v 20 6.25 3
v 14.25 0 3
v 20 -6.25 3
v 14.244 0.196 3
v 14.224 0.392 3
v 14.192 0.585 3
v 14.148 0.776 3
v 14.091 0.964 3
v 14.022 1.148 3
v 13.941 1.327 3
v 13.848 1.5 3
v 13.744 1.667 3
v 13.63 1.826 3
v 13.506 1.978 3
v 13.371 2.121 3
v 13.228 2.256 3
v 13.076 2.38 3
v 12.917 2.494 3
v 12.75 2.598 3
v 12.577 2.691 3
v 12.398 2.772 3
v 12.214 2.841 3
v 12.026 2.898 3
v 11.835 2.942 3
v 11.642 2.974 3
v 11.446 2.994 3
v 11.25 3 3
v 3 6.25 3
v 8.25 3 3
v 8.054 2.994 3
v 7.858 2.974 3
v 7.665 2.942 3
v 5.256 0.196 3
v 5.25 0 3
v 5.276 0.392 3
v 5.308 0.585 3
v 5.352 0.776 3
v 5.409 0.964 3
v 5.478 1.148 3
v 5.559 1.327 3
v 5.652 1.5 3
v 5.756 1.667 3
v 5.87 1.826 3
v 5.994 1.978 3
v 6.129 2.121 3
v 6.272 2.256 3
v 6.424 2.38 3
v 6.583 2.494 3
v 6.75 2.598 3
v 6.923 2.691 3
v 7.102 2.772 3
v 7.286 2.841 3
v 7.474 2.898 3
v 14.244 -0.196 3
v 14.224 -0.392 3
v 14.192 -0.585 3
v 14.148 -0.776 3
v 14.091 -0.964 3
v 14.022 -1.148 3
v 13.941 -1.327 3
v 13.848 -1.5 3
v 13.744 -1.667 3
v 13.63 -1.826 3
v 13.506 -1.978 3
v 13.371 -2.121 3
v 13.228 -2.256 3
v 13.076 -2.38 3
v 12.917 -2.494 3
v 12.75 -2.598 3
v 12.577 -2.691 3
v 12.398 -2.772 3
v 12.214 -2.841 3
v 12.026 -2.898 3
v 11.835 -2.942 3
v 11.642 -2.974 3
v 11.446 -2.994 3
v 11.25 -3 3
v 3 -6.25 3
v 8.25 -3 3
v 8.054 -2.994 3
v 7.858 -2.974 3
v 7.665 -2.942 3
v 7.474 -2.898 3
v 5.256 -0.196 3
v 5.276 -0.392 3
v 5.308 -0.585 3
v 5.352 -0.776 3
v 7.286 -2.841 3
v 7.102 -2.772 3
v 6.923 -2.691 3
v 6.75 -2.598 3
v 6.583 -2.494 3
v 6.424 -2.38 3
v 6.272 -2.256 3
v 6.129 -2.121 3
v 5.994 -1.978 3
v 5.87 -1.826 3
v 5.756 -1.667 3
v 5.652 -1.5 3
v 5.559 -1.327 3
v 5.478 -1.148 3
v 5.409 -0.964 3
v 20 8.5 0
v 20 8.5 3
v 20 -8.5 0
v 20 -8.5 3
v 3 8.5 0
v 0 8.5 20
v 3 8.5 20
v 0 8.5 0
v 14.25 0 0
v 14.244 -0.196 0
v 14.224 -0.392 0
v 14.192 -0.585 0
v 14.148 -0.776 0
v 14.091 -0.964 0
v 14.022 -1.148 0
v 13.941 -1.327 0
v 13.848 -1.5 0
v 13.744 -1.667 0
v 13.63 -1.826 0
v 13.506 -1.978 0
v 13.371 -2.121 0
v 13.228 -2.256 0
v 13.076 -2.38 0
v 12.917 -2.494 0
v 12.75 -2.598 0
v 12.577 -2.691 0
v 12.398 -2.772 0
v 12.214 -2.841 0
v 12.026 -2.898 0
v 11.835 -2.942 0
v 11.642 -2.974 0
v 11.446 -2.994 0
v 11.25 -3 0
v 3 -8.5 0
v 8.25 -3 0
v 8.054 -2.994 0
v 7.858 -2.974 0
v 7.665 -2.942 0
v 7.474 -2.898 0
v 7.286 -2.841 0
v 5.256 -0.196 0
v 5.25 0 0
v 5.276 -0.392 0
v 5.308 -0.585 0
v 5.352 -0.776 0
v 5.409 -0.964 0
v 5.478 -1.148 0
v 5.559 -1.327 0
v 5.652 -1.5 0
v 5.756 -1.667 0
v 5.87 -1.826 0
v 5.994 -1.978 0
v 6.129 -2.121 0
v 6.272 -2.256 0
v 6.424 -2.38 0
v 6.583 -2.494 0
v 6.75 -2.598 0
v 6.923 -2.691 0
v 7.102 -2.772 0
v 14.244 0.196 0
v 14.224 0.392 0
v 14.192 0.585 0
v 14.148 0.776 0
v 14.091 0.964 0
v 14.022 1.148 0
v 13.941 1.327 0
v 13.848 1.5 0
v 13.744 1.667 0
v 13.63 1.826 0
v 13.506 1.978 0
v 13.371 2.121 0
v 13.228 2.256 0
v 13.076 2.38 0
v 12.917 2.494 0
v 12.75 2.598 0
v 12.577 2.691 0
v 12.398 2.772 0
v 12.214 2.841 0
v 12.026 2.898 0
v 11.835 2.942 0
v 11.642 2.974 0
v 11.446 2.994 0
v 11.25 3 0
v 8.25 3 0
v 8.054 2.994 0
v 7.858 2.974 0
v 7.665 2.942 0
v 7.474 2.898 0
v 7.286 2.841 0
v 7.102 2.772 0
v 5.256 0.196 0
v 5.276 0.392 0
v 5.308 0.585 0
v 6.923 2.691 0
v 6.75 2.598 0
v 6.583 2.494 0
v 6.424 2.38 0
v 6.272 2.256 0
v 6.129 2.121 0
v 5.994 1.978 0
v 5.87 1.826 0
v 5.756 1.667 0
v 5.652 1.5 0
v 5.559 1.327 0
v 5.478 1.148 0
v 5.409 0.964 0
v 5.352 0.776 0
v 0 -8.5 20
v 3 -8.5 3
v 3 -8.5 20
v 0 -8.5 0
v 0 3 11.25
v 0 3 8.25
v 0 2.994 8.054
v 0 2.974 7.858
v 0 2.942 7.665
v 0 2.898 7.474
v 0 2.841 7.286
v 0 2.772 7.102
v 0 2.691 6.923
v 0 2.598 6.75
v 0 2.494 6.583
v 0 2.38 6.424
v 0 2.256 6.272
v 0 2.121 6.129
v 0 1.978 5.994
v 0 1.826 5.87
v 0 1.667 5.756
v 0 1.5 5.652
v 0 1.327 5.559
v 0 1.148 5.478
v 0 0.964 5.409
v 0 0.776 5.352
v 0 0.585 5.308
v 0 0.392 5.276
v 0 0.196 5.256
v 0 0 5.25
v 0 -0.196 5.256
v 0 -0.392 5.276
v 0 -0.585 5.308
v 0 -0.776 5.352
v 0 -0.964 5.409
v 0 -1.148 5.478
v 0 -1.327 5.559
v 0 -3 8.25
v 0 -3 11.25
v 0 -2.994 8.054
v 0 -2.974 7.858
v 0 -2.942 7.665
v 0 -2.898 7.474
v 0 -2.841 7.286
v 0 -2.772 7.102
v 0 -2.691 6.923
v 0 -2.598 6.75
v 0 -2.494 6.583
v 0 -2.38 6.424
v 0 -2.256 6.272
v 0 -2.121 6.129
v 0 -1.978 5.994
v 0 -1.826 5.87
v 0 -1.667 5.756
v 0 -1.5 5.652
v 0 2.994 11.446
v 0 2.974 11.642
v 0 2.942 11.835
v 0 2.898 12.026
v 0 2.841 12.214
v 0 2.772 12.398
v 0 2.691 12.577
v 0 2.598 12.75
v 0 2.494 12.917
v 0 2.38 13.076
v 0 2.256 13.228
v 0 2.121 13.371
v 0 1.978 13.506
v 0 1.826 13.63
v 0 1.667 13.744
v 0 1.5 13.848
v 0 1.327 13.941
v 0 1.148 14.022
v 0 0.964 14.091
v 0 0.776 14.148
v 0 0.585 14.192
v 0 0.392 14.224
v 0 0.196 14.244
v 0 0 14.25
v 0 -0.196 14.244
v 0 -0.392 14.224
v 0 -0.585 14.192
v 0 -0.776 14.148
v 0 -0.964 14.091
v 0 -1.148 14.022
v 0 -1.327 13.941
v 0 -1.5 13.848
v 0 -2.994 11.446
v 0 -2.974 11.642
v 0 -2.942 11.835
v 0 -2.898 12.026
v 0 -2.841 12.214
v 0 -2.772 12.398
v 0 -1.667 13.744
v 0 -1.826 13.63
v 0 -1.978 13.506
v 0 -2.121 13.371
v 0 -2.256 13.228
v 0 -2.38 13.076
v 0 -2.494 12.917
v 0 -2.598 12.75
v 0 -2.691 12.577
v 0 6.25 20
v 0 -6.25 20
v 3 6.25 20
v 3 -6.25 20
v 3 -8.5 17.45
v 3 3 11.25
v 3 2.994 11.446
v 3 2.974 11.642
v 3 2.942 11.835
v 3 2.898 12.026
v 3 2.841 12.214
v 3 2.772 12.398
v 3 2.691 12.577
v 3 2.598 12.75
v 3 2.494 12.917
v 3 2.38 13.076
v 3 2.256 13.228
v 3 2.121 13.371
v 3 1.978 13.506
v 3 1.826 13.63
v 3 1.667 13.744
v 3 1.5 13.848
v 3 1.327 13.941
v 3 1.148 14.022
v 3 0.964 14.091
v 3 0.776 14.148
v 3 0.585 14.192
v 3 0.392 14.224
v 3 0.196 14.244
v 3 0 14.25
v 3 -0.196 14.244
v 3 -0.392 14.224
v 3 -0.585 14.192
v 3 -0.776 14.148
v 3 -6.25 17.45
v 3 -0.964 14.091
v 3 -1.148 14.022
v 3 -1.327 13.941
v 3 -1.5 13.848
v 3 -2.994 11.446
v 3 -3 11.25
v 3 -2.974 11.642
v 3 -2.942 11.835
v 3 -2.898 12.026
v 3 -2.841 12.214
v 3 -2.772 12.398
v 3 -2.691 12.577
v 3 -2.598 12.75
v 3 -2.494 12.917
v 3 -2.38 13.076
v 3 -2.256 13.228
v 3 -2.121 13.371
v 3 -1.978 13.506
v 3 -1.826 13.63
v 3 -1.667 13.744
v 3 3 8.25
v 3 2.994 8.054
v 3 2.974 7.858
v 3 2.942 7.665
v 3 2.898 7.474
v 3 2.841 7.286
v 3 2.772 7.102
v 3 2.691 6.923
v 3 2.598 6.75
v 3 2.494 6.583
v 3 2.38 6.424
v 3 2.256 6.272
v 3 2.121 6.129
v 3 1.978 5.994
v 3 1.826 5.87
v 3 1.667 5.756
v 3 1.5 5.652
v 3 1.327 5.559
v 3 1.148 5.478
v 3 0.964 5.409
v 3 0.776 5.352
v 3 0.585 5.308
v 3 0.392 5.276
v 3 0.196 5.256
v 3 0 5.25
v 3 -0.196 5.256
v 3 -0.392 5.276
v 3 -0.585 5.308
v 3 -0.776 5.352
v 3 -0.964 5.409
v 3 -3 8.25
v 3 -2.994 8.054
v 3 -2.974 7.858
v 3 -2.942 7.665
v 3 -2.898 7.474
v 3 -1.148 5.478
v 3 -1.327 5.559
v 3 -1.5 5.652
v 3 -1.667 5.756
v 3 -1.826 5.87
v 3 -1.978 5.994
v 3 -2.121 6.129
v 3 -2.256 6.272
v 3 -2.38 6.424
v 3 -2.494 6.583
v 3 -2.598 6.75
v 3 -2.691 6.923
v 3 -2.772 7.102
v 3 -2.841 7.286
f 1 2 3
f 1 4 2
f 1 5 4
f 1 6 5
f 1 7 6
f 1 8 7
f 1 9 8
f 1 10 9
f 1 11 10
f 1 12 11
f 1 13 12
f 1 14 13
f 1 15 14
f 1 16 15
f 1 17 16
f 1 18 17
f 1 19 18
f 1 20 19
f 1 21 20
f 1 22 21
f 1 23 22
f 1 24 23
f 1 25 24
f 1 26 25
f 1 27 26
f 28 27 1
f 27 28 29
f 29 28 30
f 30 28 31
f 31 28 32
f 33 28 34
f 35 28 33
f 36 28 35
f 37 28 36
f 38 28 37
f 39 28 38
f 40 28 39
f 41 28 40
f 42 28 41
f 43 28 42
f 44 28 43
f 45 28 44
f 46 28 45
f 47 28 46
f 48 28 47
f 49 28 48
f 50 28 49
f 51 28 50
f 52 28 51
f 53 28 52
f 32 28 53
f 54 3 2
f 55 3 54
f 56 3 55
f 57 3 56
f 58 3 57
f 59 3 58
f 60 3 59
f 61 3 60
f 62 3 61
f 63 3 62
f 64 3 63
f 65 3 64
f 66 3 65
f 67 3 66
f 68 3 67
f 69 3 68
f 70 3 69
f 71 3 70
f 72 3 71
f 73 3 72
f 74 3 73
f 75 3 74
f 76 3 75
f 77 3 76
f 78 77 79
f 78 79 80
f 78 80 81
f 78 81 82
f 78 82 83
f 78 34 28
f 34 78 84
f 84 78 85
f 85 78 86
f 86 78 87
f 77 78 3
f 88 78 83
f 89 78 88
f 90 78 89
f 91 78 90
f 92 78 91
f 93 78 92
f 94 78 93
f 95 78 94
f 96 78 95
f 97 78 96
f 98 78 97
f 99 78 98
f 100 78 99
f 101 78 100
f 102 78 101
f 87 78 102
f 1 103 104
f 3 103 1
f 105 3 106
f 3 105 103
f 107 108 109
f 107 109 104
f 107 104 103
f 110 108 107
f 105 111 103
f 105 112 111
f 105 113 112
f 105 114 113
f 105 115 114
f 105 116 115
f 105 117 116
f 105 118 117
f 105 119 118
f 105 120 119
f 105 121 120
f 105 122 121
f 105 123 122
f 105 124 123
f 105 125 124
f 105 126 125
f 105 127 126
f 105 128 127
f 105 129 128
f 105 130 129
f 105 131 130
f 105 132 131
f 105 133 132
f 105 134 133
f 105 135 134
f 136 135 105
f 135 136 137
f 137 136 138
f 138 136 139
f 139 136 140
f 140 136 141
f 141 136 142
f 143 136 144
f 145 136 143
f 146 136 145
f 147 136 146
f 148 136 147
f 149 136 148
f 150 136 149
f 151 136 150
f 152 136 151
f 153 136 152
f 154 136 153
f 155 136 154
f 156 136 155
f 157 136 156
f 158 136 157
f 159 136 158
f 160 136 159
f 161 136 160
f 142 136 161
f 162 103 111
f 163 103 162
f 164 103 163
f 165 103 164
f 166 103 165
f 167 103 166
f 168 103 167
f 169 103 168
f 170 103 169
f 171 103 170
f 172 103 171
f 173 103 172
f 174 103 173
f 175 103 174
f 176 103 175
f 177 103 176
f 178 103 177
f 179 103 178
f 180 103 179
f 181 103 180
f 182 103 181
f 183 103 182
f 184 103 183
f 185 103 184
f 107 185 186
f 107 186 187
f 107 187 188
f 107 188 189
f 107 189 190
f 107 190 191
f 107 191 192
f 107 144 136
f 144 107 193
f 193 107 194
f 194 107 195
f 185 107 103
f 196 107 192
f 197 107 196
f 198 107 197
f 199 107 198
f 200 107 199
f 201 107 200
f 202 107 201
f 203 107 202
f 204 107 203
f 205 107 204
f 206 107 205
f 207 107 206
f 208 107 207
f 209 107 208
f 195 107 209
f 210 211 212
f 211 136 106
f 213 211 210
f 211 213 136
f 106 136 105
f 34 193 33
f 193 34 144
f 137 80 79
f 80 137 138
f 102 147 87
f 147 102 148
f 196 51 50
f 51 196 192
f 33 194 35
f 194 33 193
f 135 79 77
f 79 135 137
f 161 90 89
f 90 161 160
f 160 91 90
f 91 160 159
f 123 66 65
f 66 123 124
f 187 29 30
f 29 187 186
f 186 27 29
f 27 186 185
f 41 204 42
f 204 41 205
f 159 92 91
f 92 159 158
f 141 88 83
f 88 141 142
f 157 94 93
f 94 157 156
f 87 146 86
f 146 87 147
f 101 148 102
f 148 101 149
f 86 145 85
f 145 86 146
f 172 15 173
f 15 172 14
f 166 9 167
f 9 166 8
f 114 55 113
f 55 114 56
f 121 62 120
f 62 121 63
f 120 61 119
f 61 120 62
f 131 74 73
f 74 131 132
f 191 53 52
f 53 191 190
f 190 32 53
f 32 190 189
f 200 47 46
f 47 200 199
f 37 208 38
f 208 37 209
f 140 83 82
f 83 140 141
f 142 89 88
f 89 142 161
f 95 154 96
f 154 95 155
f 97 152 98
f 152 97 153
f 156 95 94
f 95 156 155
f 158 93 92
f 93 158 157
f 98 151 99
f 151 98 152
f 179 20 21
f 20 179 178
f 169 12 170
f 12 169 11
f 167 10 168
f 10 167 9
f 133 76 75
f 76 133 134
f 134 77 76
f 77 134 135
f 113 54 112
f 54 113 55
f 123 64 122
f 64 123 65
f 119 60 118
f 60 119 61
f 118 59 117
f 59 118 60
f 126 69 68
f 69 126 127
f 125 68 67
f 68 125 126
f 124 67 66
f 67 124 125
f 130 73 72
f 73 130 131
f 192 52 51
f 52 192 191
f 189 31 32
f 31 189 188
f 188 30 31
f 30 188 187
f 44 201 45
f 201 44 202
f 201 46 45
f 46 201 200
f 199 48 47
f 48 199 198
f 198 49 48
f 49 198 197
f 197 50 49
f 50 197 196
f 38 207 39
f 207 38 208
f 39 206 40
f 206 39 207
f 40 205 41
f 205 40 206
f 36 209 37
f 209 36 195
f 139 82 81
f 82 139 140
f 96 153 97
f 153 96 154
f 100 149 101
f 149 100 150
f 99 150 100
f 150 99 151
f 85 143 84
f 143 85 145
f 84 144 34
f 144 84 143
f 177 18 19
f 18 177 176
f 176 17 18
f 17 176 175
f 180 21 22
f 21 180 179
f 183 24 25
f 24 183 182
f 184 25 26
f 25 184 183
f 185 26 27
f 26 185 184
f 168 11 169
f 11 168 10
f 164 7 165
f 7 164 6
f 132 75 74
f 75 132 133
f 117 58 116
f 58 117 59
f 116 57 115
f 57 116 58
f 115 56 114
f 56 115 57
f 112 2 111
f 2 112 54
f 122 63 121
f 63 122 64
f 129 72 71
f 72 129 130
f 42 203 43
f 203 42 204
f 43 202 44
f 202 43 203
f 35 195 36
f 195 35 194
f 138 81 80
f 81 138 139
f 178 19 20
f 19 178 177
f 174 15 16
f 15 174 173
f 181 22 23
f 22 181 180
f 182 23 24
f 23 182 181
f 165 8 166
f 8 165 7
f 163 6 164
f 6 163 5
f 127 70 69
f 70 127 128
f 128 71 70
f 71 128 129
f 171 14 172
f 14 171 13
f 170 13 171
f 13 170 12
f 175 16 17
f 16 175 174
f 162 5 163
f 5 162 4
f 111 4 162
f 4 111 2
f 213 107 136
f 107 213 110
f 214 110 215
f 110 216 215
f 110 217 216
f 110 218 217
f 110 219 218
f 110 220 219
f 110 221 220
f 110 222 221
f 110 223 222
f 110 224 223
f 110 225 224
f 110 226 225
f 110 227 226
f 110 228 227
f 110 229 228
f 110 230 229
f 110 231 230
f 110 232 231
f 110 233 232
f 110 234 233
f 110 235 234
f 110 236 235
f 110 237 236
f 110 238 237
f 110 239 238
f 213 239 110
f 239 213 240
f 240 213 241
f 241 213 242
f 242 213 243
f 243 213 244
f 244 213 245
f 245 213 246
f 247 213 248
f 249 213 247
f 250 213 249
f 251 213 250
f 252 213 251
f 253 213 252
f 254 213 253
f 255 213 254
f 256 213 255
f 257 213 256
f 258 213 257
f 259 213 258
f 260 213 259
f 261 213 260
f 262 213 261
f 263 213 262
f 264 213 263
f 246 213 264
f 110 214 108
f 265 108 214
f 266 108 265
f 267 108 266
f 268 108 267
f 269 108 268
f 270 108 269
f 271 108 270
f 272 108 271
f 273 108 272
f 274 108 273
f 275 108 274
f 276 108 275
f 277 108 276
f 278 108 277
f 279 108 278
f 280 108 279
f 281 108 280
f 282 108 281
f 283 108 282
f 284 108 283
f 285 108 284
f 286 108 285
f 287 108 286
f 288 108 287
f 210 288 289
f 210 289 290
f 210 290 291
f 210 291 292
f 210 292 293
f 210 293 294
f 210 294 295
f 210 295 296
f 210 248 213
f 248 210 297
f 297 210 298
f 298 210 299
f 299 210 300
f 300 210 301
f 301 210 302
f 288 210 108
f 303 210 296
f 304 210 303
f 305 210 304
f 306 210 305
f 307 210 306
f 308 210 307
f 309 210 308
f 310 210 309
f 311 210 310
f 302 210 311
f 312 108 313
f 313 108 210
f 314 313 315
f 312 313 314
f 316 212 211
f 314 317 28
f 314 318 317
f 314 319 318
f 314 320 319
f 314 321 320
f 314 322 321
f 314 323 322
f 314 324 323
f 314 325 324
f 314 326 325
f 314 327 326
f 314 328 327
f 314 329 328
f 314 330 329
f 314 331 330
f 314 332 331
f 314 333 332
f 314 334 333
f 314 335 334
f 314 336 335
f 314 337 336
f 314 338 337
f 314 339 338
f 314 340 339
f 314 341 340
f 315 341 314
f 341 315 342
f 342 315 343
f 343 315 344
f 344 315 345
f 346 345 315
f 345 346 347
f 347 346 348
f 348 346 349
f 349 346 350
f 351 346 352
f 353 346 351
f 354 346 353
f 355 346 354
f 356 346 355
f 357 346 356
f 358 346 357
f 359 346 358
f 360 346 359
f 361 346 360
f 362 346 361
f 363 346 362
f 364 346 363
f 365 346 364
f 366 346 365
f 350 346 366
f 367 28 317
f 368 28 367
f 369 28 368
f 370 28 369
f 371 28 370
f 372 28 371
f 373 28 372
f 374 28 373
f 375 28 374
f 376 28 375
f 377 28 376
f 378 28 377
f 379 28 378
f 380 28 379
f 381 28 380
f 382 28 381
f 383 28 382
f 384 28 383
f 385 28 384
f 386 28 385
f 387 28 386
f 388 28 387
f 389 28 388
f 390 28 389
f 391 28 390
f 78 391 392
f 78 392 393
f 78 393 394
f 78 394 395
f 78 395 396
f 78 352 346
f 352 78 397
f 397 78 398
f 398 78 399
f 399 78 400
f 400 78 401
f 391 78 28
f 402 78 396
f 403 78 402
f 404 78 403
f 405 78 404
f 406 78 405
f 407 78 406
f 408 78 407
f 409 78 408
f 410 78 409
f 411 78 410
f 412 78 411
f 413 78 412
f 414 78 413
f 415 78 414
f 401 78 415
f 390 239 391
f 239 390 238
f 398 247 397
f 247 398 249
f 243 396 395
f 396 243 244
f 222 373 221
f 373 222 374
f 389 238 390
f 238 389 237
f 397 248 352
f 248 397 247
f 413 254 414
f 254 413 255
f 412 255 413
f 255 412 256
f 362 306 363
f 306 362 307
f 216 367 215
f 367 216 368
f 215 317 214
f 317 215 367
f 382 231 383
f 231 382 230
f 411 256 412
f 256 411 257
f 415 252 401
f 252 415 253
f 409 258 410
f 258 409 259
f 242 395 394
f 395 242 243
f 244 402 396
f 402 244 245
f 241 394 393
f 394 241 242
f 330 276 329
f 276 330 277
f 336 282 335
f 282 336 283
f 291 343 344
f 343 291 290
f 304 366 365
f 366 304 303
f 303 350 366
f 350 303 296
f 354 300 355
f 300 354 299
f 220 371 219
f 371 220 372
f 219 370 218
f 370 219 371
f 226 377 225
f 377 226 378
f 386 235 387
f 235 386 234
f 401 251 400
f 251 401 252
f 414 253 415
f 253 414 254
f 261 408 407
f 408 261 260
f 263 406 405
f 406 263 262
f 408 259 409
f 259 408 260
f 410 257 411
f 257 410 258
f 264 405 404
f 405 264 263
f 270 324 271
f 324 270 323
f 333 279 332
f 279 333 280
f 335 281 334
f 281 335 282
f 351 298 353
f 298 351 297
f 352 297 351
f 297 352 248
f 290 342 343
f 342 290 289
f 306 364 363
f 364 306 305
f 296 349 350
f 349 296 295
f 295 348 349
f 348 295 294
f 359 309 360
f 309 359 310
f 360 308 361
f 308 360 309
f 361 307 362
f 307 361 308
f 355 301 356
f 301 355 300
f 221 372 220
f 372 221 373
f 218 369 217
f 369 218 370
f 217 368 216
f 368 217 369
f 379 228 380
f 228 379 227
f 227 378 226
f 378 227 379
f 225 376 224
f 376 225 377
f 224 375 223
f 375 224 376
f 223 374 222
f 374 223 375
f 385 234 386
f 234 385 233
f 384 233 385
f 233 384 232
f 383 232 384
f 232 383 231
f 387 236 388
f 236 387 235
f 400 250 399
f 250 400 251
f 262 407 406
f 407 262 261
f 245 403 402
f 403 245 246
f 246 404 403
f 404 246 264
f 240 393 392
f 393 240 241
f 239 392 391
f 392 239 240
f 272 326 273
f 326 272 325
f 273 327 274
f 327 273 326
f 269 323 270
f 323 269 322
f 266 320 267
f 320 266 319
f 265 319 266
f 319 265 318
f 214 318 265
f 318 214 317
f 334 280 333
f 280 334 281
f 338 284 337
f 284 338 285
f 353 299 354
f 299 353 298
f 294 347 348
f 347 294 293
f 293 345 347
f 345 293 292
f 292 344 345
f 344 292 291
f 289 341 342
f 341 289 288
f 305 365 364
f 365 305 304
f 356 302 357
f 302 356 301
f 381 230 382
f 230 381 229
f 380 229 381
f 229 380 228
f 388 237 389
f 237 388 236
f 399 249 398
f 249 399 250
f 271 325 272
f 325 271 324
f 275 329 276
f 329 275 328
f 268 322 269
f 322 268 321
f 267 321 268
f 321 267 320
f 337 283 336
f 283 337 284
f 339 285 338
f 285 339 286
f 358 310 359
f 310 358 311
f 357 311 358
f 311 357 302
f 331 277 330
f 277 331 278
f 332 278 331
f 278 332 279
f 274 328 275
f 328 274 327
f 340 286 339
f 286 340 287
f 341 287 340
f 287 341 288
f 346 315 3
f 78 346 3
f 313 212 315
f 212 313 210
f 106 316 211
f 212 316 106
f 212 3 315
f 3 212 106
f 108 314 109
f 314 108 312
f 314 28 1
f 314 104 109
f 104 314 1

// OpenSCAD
// file: ../../../conf/constants.scad
/**********************************************************************************************************************
 **
 ** conf/constants.scad
 **
 ** This file contains constants and aliases used for the part size definitions.
 **
 **********************************************************************************************************************/

/**
 * The alias names for the rails.
 * A is the "front left" rail, B the "front right" rail, C the back rail.
 * These constants are also used for the sides of the frame and the effector; in this case, side A is the one 
 * opposing rail A.
 */
A = 0;
B = 1;
C = 2;

/**
 * Aliases for metric screw/nut sizes.
 */
M2 = 2;
M3 = 3;
M4 = 4;
M5 = 5;
M8 = 8;

/** 
 * Aliases for NEMA stepper motors.
 */
NEMA14 = 14;
NEMA17 = 17;
NEMA23 = 23;
// main file
/**********************************************************************************************************************
 **
 ** parts/vitamins/mechanic/rail_bracket.scad
 **
 ** This file renders an - probably aluminium - 90° bracket that is used to combine 2020 rails.
 **
 **********************************************************************************************************************/

include <../../../conf/part_sizes.scad>

$fn = 96;

// Normally, these brackets have alignment tabs - we don't need these. (In fact, you would have to remove them
// in some places.)

union() {
	// the left side plate
	translate([0, -rail_bracket_width()/2 + rail_bracket_side_wall_thickness(), 0])
		side_plate();
	// the right side plate
	translate([0, rail_bracket_width()/2, 0])
		side_plate();
	// the bottom face plate
	translate([0, -rail_bracket_width()/2, 0])
		face_plate();
	// the back side face plate
	translate([rail_bracket_outer_wall_thickness(), -rail_bracket_width()/2, 0])
		rotate([0, 270, 0])
			face_plate();
}

module side_plate() {
	rotate([90, 0, 0])
		linear_extrude(height = rail_bracket_side_wall_thickness()) 
			polygon(points = [
				[0, 0],
				[rail_bracket_side_length(), 0],
				[rail_bracket_side_length(), rail_bracket_outer_wall_thickness()],
				[rail_bracket_outer_wall_thickness(), rail_bracket_side_length()],
				[0, rail_bracket_side_length()]
			]);
}

module face_plate() {
	difference() {
		cube([rail_bracket_side_length(), rail_bracket_width(), rail_bracket_outer_wall_thickness()]);
		hull() {
			translate([rail_bracket_hole_corner_offset() + rail_bracket_hole_width()/2, rail_bracket_width()/2, -1])
				cylinder(d = rail_bracket_hole_width(), h = rail_bracket_outer_wall_thickness()+2);
			translate([rail_bracket_hole_corner_offset() + rail_bracket_hole_length() - rail_bracket_hole_width()/2, rail_bracket_width()/2, -1])
				cylinder(d = rail_bracket_hole_width(), h = rail_bracket_outer_wall_thickness()+2);
		}
	}
}
